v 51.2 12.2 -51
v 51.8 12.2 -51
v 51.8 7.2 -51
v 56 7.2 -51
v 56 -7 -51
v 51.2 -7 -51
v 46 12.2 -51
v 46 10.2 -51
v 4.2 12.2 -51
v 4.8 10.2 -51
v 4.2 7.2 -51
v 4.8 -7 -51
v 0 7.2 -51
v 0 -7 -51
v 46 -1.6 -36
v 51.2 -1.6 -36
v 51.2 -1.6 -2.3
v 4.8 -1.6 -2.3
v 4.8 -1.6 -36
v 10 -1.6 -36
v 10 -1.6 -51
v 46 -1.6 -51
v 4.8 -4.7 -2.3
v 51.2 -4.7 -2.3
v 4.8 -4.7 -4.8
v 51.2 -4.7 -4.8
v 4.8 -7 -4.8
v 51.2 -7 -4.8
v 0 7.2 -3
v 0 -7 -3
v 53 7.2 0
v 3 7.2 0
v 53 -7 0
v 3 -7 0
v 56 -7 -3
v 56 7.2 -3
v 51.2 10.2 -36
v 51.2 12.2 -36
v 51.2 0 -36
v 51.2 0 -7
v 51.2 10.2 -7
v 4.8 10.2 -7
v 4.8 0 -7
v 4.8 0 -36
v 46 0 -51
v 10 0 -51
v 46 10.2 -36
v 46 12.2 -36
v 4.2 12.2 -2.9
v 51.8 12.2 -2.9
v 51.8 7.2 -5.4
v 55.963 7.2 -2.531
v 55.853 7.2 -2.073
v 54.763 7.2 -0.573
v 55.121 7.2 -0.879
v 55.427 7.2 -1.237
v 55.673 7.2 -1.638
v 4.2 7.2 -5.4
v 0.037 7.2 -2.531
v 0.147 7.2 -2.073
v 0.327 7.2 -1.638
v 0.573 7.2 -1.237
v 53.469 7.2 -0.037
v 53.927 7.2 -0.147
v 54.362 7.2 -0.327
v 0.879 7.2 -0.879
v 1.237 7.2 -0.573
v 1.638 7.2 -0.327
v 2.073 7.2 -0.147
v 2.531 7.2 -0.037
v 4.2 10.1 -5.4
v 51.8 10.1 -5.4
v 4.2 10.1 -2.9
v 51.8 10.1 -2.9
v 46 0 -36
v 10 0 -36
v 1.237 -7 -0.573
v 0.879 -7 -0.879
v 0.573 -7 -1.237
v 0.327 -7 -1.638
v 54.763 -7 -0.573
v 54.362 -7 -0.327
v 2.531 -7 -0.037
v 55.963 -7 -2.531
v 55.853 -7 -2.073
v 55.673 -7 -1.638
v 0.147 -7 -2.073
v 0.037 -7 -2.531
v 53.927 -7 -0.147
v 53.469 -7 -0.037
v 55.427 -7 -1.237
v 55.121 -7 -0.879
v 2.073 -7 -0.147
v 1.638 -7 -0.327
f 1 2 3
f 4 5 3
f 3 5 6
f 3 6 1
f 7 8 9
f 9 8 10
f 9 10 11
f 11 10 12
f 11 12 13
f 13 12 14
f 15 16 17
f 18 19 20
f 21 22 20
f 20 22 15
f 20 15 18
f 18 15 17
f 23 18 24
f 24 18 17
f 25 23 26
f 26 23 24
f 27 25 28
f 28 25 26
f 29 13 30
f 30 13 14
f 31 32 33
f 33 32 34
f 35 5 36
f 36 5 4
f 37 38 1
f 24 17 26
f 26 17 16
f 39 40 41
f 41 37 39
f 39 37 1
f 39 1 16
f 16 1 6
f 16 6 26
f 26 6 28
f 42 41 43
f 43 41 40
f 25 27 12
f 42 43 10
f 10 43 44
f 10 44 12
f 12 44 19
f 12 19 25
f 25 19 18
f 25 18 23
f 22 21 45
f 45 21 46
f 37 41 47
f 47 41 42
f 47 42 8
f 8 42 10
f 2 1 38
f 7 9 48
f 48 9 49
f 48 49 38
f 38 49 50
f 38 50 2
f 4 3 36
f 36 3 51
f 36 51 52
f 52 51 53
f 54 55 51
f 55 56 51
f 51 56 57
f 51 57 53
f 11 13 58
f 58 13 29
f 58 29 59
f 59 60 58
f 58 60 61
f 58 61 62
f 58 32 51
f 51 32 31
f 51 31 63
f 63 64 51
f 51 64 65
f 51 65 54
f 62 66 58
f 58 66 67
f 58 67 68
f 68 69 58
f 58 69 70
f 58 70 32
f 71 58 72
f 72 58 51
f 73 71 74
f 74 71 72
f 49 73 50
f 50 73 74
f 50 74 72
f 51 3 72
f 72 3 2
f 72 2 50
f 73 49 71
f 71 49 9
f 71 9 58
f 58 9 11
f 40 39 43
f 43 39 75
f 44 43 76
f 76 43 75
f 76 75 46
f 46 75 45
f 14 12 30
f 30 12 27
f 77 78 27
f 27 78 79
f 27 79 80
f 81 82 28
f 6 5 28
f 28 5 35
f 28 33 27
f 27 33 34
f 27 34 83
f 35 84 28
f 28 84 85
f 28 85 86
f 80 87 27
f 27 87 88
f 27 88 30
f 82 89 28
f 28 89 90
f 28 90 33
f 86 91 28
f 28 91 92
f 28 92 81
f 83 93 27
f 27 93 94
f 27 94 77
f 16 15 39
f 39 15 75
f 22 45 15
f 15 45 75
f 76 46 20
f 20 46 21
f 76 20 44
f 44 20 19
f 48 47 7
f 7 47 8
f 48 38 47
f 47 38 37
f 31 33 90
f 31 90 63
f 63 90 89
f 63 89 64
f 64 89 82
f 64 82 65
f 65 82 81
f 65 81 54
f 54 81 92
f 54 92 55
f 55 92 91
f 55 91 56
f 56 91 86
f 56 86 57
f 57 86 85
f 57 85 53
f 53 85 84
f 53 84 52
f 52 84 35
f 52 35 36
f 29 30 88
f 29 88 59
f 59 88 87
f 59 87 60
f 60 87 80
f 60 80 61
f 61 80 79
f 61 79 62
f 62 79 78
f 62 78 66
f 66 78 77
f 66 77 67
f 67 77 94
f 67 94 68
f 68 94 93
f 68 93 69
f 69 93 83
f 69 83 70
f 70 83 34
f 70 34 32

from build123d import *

# Parameters (mm, degrees)
BOSS_EXTRUDE8_DEPTH  = 10.2
SKETCH8_W            = 56
SKETCH8_H            = 51
BOSS_EXTRUDE9_DEPTH  = 2
CUT_EXTRUDE1_START   = -4
CUT_EXTRUDE1_DEPTH   = 48
SKETCH12_W           = 4
SKETCH12_H           = 51
CUT_EXTRUDE2_DEPTH   = 5
SKETCH11_W           = 56
SKETCH11_H           = 2
BOSS_EXTRUDE10_DEPTH = 51
SKETCH11_3_W         = 56
SKETCH11_3_H         = 2.5
BOSS_EXTRUDE11_DEPTH = 2.5
SKETCH11_4_W         = 56
SKETCH11_4_H         = 2.5
BOSS_EXTRUDE12_DEPTH = 5
SKETCH13_W           = 5
SKETCH13_H           = 48.5
BOSS_EXTRUDE13_DEPTH = 5
SKETCH14_W           = 5
SKETCH14_H           = 14.2
SKETCH14_H_2         = 7
CUT_EXTRUDE3_DEPTH   = 15
FILLET1_R            = 3
MOVE_FACE1_BY        = 0.2
MOVE_FACE1_2_BY      = 0.2
MOVE_FACE1_3_BY      = 0.2
MOVE_FACE1_4_BY      = 0.2
MOVE_FACE2_BY        = 0.2
MOVE_FACE2_2_BY      = 0.2
MOVE_FACE2_3_BY      = 0.2
MOVE_FACE2_4_BY      = 0.2
MOVE_FACE2_5_BY      = 0.2
MOVE_FACE3_BY        = 0.2
MOVE_FACE3_2_BY      = 0.2
MOVE_FACE3_3_BY      = 0.2
MOVE_FACE3_4_BY      = 0.2
MOVE_FACE3_5_BY      = 0.2
MOVE_FACE3_6_BY      = 0.2


with BuildPart() as part:
    # Sketch1 → Boss-Extrude8 (new body)
    with BuildSketch(Plane(origin=(0, 0, 0), x_dir=(1, 0, 0), z_dir=(0, 1, 0))):
        Polygon((0, 51), (5, 51), (5, 49), (5, 7), (51, 7), (51, 51), (56, 51), (56, 0), (0, 0), align=None)
    extrude(amount=BOSS_EXTRUDE8_DEPTH)

    # Sketch8 → Boss-Extrude9 (add)
    with BuildSketch(Plane(origin=(0, 10.2, 0), x_dir=(1, 0, 0), z_dir=(0, 1, 0))):
        with Locations((28, 25.5)):
            Rectangle(SKETCH8_W, SKETCH8_H)
    extrude(amount=BOSS_EXTRUDE9_DEPTH)

    # Sketch10 → Cut-Extrude1 (cut)
    with BuildSketch(Plane.ZY.offset(CUT_EXTRUDE1_START)):
        Polygon((0, 12.2), (-2.5, 12.2), (-2.5, 9.7), (-5, 9.7), (-5, 7.2), (0, 7.2), align=None)
    extrude(amount=-CUT_EXTRUDE1_DEPTH, mode=Mode.SUBTRACT)

    # Sketch12 → Cut-Extrude2 (cut)
    with BuildSketch(Plane(origin=(0, 12.2, 0), x_dir=(1, 0, 0), z_dir=(0, 1, 0))):
        with Locations((2, 25.5)):
            Rectangle(SKETCH12_W, SKETCH12_H)
        with Locations((54, 25.5)):
            Rectangle(SKETCH12_W, SKETCH12_H)
    extrude(amount=-CUT_EXTRUDE2_DEPTH, mode=Mode.SUBTRACT)

    # Sketch11 → Boss-Extrude10 (add)
    with BuildSketch(Plane.XY):
        with Locations((28, -1)):
            Rectangle(SKETCH11_W, SKETCH11_H)
    extrude(amount=-BOSS_EXTRUDE10_DEPTH)

    # Sketch11<3> → Boss-Extrude11 (add)
    with BuildSketch(Plane.XY):
        with Locations((28, -3.25)):
            Rectangle(SKETCH11_3_W, SKETCH11_3_H)
    extrude(amount=-BOSS_EXTRUDE11_DEPTH)

    # Sketch11<4> → Boss-Extrude12 (add)
    with BuildSketch(Plane.XY):
        with Locations((28, -5.75)):
            Rectangle(SKETCH11_4_W, SKETCH11_4_H)
    extrude(amount=-BOSS_EXTRUDE12_DEPTH)

    # Sketch13 → Boss-Extrude13 (add)
    with BuildSketch(Plane.XZ.offset(2)):
        with Locations((2.5, -26.75)):
            Rectangle(SKETCH13_W, SKETCH13_H)
        with Locations((53.5, -26.75)):
            Rectangle(SKETCH13_W, SKETCH13_H)
    extrude(amount=BOSS_EXTRUDE13_DEPTH)

    # Sketch14 → Cut-Extrude3 (cut)
    with BuildSketch(Plane(origin=(0, 0, -51), x_dir=(-1, 0, 0), z_dir=(0, 0, -1))):
        with Locations((-48.5, 5.1)):
            Rectangle(SKETCH14_W, SKETCH14_H)
        with Locations((-7.5, -3.5)):
            Rectangle(SKETCH14_W, SKETCH14_H_2)
    extrude(amount=-CUT_EXTRUDE3_DEPTH, mode=Mode.SUBTRACT)

    # Fillet1
    fillet1_edges = [part.edges().sort_by_distance(p)[0] for p in [
        (56, 0.1, 0),
        (0, 0.1, 0),
    ]]
    fillet(fillet1_edges, radius=FILLET1_R)

    # Move Face1: a face moved inward by 0.2
    extrude(part.faces().sort_by_distance((28, 9.7, -3.75))[0], amount=MOVE_FACE1_BY, dir=(0, 1, 0), mode=Mode.SUBTRACT)

    # Move Face1 2: a face moved inward by 0.2
    extrude(part.faces().sort_by_distance((28, 10.95, -2.5))[0], amount=MOVE_FACE1_2_BY, dir=(0, 0, -1), mode=Mode.SUBTRACT)

    # Move Face1 3: a face moved inward by 0.2
    extrude(part.faces().sort_by_distance((28, 8.45, -5))[0], amount=MOVE_FACE1_3_BY, dir=(0, 0, -1), mode=Mode.SUBTRACT)

    # Move Face1 4: a face moved inward by 0.2
    extrude(part.faces().sort_by_distance((28, -2, -25.542647765))[0], amount=MOVE_FACE1_4_BY, dir=(0, 1, 0), mode=Mode.SUBTRACT)

    # Move Face2: a face moved inward by 0.2
    extrude(part.faces().sort_by_distance((28, 9.9, -3.95))[0], amount=MOVE_FACE2_BY, dir=(0, 1, 0), mode=Mode.SUBTRACT)

    # Move Face2 2: a face moved inward by 0.2
    extrude(part.faces().sort_by_distance((28, 8.55, -5.2))[0], amount=MOVE_FACE2_2_BY, dir=(0, 0, -1), mode=Mode.SUBTRACT)

    # Move Face2 3: a face moved inward by 0.2
    extrude(part.faces().sort_by_distance((28, 11.05, -2.7))[0], amount=MOVE_FACE2_3_BY, dir=(0, 0, -1), mode=Mode.SUBTRACT)

    # Move Face2 4: a face moved inward by 0.2
    extrude(part.faces().sort_by_distance((52, 9.733067093, -27.508466454))[0], amount=MOVE_FACE2_4_BY, dir=(-1, 0, 0), mode=Mode.SUBTRACT)

    # Move Face2 5: a face moved inward by 0.2
    extrude(part.faces().sort_by_distance((4, 9.733067093, -27.508466454))[0], amount=MOVE_FACE2_5_BY, dir=(1, 0, 0), mode=Mode.SUBTRACT)

    # Move Face3: a face moved inward by 0.2
    extrude(part.faces().sort_by_distance((5, 1.649930724, -28.974870107))[0], amount=MOVE_FACE3_BY, dir=(-1, 0, 0), mode=Mode.SUBTRACT)

    # Move Face3 2: a face moved inward by 0.2
    extrude(part.faces().sort_by_distance((51, 2.03104423, -29.55452278))[0], amount=MOVE_FACE3_2_BY, dir=(1, 0, 0), mode=Mode.SUBTRACT)

    # Move Face3 3: a face moved inward by 0.2
    extrude(part.faces().sort_by_distance((28, -5.75, -5))[0], amount=MOVE_FACE3_3_BY, dir=(0, 0, 1), mode=Mode.SUBTRACT)

    # Move Face3 4: a face moved inward by 0.2
    extrude(part.faces().sort_by_distance((28, -4.5, -3.75))[0], amount=MOVE_FACE3_4_BY, dir=(0, -1, 0), mode=Mode.SUBTRACT)

    # Move Face3 5: a face moved inward by 0.2
    extrude(part.faces().sort_by_distance((28, -3.15, -2.5))[0], amount=MOVE_FACE3_5_BY, dir=(0, 0, 1), mode=Mode.SUBTRACT)

    # Move Face3 6: a face moved inward by 0.2
    extrude(part.faces().sort_by_distance((28, -1.8, -25.542647765))[0], amount=MOVE_FACE3_6_BY, dir=(0, 1, 0), mode=Mode.SUBTRACT)


solid = part.part
